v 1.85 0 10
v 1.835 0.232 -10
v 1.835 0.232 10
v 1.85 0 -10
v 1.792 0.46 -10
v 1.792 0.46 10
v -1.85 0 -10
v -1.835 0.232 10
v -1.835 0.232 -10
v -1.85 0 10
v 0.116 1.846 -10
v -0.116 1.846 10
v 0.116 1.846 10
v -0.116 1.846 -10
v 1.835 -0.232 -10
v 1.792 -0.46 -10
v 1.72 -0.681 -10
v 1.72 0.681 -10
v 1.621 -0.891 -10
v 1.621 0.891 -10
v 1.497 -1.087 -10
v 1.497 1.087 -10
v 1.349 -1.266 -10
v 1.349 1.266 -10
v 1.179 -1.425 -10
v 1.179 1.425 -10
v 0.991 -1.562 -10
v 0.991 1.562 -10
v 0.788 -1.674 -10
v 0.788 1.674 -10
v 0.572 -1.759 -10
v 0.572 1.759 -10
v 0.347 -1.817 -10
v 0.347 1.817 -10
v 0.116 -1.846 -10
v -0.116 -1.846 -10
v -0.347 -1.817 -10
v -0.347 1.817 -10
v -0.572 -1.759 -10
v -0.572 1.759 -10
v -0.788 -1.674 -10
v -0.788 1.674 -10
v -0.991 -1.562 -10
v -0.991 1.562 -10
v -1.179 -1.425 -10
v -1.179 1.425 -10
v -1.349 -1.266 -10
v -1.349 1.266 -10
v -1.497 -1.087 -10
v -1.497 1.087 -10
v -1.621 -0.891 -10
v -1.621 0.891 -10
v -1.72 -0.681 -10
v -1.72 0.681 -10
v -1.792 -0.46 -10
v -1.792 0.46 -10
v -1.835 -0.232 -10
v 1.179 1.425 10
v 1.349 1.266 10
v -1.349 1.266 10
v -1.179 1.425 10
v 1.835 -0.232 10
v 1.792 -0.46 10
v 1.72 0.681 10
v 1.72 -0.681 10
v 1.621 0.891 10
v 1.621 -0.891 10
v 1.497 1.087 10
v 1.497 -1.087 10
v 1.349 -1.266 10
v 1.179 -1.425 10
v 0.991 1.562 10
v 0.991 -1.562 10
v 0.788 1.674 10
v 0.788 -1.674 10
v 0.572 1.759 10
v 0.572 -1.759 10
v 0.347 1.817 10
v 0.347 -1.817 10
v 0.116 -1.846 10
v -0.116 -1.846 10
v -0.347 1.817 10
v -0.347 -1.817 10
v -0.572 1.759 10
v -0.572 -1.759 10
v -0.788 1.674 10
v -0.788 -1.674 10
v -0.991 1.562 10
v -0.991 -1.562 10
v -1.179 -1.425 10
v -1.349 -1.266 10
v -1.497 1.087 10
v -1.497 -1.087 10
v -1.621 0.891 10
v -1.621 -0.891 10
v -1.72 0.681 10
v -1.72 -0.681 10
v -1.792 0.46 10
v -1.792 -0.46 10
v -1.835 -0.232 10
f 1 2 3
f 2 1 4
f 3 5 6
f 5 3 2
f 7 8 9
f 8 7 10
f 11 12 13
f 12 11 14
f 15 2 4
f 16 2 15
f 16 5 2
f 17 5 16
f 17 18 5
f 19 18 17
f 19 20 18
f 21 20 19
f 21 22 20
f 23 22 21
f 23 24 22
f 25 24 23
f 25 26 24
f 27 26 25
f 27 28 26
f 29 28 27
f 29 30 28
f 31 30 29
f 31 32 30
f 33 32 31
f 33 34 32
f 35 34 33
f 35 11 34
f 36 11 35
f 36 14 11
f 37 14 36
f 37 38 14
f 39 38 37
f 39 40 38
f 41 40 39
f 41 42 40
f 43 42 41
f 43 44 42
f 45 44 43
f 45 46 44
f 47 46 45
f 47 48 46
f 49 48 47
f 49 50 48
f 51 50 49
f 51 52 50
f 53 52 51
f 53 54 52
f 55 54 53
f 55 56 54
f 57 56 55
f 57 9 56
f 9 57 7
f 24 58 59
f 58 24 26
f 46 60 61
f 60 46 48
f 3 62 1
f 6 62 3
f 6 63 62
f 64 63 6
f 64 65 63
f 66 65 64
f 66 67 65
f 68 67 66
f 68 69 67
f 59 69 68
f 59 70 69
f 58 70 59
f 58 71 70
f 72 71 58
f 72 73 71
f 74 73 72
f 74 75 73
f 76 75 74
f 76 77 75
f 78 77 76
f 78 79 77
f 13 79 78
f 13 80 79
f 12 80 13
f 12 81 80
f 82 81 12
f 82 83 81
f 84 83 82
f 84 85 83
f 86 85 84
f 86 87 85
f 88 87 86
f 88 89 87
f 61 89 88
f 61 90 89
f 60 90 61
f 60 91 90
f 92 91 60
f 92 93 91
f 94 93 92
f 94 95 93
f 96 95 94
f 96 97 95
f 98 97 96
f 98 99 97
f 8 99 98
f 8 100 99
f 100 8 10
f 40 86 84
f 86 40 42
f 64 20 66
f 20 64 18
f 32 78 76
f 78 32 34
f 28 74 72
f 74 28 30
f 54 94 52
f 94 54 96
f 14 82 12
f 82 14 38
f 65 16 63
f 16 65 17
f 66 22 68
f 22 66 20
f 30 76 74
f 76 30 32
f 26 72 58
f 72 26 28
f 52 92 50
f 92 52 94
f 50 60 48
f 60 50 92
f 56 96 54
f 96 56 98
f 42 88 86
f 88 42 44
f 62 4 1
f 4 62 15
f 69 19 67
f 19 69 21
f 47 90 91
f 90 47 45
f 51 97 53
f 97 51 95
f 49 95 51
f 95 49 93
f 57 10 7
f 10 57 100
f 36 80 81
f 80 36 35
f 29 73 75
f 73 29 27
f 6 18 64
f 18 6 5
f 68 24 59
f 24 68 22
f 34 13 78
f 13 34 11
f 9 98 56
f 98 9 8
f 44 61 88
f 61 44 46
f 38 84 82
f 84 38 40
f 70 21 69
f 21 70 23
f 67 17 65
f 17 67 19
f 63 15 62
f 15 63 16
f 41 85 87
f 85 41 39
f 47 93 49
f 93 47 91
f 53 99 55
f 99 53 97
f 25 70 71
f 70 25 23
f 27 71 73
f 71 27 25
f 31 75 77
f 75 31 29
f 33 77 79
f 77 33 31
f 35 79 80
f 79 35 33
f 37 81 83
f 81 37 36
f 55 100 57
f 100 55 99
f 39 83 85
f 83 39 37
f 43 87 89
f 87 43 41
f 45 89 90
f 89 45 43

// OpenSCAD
$fn = 50;


difference() {
	union() {
		translate(v = [0, 0, -10.0000000000]) {
			cylinder(h = 20, r = 1.8500000000);
		}
	}
	union() {
		translate(v = [0, 0, -100.0000000000]) {
			cylinder(h = 200, r = 0);
		}
	}
}
